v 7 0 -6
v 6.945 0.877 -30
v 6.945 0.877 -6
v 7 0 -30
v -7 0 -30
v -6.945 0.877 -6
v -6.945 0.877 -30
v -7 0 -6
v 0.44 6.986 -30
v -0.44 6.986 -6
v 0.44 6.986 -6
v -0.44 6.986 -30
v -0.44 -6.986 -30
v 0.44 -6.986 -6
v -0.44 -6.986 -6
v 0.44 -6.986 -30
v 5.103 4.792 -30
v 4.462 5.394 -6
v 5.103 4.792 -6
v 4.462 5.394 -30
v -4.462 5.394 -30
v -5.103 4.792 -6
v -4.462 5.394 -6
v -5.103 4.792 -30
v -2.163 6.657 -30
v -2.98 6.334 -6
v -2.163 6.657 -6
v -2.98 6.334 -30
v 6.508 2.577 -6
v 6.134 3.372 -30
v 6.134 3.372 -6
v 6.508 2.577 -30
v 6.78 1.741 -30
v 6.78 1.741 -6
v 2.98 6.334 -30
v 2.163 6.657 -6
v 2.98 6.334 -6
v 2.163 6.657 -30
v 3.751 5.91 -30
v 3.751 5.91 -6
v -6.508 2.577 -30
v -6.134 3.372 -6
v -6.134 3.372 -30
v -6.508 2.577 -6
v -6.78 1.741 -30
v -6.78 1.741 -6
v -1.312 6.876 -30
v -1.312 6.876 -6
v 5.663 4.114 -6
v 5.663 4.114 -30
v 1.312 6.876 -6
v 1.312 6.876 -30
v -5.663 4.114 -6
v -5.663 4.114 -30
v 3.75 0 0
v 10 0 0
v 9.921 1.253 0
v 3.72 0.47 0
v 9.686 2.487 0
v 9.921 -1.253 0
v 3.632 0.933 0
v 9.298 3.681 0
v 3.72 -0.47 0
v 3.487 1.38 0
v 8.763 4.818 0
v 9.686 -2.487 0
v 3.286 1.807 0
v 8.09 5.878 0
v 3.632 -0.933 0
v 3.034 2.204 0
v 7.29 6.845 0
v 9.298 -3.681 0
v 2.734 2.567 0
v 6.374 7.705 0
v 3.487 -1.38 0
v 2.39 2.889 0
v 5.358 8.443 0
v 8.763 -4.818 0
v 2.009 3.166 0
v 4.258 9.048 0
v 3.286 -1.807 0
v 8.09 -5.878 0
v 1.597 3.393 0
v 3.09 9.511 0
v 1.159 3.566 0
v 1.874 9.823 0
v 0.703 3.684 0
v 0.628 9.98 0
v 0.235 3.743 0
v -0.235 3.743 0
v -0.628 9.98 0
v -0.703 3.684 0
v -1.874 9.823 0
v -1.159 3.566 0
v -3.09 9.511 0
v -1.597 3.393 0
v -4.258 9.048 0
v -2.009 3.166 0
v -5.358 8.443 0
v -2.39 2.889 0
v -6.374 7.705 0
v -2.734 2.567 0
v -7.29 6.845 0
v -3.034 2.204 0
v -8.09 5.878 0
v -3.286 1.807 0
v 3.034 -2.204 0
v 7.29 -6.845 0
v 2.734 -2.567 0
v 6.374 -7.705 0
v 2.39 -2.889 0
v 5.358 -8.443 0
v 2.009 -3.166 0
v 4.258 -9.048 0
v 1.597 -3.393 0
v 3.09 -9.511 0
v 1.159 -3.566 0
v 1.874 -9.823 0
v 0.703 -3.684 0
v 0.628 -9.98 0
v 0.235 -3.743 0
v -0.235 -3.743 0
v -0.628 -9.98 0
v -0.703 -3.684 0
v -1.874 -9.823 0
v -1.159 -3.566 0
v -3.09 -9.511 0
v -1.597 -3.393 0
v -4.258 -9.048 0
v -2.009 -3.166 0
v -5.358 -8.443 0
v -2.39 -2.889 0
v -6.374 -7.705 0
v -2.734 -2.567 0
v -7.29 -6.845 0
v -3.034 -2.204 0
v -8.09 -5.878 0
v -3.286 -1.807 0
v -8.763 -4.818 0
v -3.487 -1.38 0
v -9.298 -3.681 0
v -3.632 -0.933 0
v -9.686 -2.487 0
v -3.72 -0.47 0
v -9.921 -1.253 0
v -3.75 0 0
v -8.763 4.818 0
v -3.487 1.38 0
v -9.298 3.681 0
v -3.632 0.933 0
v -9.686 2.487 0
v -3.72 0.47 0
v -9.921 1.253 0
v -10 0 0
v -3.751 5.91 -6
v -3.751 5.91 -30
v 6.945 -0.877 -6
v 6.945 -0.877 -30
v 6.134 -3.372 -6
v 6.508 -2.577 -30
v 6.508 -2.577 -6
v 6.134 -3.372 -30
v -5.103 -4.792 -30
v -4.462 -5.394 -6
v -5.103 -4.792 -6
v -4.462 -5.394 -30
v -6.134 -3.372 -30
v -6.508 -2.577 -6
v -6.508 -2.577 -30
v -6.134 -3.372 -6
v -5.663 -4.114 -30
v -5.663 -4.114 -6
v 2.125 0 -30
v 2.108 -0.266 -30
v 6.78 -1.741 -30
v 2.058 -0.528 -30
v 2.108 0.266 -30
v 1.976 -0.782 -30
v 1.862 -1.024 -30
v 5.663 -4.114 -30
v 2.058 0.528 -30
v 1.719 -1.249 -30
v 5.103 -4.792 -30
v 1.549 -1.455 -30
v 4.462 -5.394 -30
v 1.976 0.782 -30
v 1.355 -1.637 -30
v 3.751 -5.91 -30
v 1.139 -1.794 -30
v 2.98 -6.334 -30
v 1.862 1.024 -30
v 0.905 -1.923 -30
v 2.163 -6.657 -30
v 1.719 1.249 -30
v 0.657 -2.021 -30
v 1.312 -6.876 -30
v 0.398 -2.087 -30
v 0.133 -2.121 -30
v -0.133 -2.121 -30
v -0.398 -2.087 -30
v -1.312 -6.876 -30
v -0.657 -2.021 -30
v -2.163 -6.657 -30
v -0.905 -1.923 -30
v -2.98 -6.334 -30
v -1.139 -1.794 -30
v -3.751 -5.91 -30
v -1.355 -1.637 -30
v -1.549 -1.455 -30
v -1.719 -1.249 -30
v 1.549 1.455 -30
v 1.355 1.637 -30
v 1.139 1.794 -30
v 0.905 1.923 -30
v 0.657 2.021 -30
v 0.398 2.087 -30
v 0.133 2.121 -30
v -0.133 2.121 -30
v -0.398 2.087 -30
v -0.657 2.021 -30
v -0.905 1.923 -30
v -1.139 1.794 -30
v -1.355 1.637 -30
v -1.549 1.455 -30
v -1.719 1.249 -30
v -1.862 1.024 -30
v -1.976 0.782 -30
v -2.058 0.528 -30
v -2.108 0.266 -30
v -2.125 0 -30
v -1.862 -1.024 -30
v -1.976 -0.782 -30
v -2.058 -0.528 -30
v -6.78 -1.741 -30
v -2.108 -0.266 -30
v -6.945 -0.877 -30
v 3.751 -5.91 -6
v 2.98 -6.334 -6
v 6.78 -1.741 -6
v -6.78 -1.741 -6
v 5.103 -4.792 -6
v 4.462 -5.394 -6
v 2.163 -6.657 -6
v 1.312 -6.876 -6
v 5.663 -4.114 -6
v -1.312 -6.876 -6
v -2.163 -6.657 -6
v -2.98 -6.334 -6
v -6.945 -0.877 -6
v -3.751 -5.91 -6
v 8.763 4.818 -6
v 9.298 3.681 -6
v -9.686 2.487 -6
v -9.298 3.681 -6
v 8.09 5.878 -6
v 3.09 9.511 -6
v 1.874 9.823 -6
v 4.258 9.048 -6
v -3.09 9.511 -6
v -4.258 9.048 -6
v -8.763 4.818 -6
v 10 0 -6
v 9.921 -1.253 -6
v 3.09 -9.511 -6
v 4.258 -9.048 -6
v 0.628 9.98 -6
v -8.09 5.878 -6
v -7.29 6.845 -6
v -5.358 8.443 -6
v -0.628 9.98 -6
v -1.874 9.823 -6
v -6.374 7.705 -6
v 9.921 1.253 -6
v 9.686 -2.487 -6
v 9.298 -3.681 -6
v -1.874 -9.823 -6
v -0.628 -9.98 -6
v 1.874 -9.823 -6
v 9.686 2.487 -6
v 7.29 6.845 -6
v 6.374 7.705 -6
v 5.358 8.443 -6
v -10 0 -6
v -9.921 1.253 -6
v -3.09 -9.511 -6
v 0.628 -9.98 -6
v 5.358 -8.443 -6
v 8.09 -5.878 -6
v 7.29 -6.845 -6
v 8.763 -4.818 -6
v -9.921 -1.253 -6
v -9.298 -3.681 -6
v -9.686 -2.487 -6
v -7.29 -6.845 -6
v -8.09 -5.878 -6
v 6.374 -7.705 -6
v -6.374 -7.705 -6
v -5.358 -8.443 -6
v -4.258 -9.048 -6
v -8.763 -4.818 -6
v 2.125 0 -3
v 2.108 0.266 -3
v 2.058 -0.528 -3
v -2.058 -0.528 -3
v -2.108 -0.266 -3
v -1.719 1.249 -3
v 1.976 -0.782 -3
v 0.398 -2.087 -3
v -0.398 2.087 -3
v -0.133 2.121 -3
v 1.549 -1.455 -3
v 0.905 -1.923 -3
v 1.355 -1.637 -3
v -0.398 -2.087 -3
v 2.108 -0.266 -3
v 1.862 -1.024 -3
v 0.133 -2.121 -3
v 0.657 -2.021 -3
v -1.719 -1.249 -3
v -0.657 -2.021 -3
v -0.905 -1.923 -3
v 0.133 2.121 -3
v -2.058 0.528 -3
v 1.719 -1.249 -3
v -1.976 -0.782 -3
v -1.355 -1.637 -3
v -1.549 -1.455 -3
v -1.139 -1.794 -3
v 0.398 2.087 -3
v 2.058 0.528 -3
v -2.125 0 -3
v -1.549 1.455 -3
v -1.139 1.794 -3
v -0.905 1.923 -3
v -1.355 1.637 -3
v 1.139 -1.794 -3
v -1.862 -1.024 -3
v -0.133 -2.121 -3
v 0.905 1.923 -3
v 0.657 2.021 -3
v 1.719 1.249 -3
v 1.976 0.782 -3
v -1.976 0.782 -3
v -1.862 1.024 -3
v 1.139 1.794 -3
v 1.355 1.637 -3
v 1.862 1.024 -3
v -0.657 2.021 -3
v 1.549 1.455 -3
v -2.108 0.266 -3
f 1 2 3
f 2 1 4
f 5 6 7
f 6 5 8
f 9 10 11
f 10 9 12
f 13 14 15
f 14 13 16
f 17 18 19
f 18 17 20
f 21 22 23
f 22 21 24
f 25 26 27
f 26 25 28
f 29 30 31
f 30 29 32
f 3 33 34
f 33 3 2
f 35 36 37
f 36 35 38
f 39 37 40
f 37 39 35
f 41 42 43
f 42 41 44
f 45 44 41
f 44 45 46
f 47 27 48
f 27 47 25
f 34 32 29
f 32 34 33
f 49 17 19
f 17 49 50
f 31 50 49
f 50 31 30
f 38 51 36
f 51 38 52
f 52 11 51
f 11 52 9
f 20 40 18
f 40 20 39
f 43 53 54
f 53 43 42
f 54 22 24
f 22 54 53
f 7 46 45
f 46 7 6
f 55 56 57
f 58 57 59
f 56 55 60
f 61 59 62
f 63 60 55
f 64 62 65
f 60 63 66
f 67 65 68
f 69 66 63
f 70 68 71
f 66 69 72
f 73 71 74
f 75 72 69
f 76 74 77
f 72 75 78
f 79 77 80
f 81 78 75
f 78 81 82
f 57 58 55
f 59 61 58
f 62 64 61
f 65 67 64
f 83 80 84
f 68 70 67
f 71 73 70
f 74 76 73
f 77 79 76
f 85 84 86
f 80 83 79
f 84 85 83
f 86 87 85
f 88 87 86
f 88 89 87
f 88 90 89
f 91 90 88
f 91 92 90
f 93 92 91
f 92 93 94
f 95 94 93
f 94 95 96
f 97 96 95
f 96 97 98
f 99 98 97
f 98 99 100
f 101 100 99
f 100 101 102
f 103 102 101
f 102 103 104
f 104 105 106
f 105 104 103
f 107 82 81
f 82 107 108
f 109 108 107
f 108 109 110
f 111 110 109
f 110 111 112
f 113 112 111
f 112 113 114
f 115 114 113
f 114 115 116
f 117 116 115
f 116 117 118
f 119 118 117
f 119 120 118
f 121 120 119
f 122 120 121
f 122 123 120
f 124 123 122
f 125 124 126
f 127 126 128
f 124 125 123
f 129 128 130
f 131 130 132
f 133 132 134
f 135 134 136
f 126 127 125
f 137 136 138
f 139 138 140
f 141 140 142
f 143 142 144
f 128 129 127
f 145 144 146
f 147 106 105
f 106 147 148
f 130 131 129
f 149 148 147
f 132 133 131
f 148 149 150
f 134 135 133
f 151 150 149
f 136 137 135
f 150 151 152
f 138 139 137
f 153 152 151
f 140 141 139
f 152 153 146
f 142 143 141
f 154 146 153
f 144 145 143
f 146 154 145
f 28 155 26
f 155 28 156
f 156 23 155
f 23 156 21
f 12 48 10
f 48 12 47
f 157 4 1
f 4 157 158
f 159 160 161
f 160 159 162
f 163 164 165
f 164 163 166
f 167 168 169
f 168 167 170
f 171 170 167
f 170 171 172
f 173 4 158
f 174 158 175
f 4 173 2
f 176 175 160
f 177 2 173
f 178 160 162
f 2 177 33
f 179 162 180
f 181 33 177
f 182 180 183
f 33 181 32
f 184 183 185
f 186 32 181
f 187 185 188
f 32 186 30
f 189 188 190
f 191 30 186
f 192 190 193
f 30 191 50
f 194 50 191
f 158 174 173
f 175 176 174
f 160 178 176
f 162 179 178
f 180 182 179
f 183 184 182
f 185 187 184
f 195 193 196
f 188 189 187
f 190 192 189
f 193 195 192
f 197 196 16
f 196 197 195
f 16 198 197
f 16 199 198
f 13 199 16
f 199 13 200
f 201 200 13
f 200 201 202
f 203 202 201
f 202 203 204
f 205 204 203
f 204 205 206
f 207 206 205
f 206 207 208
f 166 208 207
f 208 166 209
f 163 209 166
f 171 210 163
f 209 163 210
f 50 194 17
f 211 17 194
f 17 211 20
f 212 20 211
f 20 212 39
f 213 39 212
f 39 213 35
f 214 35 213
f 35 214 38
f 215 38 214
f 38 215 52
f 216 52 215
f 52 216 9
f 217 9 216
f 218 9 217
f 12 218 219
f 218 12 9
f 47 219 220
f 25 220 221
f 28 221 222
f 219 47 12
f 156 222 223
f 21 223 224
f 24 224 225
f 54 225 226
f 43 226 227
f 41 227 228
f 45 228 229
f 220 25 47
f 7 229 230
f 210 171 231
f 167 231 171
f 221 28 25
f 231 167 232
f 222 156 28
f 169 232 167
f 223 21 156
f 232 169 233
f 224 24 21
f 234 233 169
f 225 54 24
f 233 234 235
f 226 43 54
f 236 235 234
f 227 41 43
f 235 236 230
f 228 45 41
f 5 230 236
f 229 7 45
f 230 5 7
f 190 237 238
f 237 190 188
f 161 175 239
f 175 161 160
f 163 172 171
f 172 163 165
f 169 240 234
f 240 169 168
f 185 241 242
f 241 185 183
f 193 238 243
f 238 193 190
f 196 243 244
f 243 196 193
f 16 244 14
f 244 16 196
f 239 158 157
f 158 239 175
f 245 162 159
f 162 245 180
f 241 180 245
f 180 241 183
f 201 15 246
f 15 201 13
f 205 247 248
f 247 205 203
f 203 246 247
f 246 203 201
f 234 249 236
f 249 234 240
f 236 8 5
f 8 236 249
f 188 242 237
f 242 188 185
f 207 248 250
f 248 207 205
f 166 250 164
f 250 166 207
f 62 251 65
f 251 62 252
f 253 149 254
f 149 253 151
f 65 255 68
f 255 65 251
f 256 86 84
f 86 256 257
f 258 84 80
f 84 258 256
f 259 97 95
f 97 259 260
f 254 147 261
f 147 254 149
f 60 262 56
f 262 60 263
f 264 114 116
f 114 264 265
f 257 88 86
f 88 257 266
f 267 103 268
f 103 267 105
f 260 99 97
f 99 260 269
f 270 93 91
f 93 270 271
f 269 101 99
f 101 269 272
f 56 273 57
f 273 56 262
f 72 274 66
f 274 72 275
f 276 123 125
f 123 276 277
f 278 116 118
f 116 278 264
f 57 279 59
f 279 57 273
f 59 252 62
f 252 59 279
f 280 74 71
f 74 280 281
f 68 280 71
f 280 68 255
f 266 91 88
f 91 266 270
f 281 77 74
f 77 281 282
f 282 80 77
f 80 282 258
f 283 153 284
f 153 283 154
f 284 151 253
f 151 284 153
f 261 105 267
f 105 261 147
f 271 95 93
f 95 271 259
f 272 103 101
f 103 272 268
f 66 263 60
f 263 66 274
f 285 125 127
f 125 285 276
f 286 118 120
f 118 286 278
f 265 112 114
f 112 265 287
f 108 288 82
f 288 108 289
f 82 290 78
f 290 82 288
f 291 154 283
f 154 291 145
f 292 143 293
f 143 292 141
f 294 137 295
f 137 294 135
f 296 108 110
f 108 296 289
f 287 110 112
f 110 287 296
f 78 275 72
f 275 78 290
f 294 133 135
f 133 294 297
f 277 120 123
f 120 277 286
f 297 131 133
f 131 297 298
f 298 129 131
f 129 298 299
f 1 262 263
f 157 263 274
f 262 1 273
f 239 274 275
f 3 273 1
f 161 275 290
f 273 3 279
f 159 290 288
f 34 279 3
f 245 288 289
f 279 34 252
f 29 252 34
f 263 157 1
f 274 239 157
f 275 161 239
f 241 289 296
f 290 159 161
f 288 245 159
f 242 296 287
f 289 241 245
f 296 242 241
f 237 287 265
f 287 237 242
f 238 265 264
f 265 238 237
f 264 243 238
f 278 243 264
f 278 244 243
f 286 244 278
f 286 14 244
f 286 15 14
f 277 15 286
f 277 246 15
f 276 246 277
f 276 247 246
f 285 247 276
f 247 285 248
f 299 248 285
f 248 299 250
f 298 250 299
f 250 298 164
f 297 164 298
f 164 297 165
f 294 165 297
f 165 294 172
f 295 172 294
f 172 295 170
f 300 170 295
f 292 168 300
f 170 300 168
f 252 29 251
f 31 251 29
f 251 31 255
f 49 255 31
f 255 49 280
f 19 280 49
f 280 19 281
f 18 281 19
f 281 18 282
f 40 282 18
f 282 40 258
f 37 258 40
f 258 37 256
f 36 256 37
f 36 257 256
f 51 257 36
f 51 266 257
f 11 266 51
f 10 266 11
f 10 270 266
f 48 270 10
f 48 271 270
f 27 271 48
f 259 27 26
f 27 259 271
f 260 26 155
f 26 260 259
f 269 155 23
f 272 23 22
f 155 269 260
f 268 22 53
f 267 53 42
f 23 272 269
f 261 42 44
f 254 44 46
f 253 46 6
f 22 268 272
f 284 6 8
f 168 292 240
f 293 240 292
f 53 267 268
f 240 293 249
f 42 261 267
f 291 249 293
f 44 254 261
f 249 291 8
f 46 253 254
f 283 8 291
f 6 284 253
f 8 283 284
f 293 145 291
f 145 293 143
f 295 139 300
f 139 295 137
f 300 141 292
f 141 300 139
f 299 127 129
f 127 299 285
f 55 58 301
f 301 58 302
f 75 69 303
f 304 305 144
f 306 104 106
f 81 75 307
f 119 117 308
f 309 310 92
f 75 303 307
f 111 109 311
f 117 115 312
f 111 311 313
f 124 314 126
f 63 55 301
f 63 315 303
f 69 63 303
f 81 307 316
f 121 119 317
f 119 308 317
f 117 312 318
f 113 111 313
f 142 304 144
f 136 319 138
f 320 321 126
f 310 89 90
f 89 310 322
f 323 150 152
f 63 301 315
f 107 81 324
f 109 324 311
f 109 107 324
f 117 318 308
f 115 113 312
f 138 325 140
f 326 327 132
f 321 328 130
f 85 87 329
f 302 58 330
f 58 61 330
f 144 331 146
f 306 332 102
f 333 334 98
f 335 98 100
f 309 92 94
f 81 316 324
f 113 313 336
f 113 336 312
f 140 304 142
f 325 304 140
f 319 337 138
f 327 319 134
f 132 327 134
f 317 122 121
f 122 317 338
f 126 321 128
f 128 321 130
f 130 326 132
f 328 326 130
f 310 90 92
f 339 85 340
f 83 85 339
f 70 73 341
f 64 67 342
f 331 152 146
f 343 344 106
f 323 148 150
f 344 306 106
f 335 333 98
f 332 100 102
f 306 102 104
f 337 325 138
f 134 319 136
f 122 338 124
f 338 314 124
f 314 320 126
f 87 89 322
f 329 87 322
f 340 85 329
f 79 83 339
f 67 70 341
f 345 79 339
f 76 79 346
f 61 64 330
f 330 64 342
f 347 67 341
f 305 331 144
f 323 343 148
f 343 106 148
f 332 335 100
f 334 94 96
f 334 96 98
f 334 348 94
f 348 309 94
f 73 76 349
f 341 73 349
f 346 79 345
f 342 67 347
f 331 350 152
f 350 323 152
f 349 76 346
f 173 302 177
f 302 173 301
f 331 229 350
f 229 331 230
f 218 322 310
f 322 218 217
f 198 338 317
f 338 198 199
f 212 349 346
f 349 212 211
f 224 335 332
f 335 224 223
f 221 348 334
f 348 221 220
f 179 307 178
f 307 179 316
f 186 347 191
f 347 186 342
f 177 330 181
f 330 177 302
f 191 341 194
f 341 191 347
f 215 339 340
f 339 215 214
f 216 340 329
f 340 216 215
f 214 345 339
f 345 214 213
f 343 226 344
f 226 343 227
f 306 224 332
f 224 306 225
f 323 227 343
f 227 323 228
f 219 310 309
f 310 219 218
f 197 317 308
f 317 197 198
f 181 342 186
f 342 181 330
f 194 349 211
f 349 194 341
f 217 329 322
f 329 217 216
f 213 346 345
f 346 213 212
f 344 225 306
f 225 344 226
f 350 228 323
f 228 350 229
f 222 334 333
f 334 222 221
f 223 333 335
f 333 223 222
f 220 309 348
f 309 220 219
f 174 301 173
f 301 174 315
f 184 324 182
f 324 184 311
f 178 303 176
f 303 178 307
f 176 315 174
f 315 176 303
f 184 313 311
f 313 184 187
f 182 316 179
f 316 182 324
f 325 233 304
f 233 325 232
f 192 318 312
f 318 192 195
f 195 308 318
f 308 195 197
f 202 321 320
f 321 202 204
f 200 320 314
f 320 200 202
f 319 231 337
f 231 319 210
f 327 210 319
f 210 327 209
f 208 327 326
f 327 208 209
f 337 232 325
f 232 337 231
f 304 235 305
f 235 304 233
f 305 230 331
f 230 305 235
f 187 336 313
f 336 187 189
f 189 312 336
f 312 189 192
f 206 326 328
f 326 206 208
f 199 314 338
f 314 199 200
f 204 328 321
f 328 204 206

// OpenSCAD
$fn = 50;


difference() {
	union() {
		translate(v = [0, 0, -30.0000000000]) {
			cylinder(h = 30, r = 7.0000000000);
		}
		translate(v = [0, 0, -6.0000000000]) {
			cylinder(h = 6, r = 10.0000000000);
		}
	}
	union() {
		translate(v = [0, 0, 0]) {
			rotate(a = [0, 0, 0]) {
				difference() {
					union() {
						#translate(v = [0, 0, -30.0000000000]) {
							cylinder(h = 30, r = 2.0000000000);
						}
						#translate(v = [0, 0, -3]) {
							cylinder(h = 3, r1 = 2.1250000000, r2 = 3.7500000000);
						}
						#translate(v = [0, 0, -30.0000000000]) {
							cylinder(h = 30, r = 2.1250000000);
						}
						#translate(v = [0, 0, -30.0000000000]) {
							cylinder(h = 30, r = 2.0000000000);
						}
					}
					union();
				}
			}
		}
	}
}
